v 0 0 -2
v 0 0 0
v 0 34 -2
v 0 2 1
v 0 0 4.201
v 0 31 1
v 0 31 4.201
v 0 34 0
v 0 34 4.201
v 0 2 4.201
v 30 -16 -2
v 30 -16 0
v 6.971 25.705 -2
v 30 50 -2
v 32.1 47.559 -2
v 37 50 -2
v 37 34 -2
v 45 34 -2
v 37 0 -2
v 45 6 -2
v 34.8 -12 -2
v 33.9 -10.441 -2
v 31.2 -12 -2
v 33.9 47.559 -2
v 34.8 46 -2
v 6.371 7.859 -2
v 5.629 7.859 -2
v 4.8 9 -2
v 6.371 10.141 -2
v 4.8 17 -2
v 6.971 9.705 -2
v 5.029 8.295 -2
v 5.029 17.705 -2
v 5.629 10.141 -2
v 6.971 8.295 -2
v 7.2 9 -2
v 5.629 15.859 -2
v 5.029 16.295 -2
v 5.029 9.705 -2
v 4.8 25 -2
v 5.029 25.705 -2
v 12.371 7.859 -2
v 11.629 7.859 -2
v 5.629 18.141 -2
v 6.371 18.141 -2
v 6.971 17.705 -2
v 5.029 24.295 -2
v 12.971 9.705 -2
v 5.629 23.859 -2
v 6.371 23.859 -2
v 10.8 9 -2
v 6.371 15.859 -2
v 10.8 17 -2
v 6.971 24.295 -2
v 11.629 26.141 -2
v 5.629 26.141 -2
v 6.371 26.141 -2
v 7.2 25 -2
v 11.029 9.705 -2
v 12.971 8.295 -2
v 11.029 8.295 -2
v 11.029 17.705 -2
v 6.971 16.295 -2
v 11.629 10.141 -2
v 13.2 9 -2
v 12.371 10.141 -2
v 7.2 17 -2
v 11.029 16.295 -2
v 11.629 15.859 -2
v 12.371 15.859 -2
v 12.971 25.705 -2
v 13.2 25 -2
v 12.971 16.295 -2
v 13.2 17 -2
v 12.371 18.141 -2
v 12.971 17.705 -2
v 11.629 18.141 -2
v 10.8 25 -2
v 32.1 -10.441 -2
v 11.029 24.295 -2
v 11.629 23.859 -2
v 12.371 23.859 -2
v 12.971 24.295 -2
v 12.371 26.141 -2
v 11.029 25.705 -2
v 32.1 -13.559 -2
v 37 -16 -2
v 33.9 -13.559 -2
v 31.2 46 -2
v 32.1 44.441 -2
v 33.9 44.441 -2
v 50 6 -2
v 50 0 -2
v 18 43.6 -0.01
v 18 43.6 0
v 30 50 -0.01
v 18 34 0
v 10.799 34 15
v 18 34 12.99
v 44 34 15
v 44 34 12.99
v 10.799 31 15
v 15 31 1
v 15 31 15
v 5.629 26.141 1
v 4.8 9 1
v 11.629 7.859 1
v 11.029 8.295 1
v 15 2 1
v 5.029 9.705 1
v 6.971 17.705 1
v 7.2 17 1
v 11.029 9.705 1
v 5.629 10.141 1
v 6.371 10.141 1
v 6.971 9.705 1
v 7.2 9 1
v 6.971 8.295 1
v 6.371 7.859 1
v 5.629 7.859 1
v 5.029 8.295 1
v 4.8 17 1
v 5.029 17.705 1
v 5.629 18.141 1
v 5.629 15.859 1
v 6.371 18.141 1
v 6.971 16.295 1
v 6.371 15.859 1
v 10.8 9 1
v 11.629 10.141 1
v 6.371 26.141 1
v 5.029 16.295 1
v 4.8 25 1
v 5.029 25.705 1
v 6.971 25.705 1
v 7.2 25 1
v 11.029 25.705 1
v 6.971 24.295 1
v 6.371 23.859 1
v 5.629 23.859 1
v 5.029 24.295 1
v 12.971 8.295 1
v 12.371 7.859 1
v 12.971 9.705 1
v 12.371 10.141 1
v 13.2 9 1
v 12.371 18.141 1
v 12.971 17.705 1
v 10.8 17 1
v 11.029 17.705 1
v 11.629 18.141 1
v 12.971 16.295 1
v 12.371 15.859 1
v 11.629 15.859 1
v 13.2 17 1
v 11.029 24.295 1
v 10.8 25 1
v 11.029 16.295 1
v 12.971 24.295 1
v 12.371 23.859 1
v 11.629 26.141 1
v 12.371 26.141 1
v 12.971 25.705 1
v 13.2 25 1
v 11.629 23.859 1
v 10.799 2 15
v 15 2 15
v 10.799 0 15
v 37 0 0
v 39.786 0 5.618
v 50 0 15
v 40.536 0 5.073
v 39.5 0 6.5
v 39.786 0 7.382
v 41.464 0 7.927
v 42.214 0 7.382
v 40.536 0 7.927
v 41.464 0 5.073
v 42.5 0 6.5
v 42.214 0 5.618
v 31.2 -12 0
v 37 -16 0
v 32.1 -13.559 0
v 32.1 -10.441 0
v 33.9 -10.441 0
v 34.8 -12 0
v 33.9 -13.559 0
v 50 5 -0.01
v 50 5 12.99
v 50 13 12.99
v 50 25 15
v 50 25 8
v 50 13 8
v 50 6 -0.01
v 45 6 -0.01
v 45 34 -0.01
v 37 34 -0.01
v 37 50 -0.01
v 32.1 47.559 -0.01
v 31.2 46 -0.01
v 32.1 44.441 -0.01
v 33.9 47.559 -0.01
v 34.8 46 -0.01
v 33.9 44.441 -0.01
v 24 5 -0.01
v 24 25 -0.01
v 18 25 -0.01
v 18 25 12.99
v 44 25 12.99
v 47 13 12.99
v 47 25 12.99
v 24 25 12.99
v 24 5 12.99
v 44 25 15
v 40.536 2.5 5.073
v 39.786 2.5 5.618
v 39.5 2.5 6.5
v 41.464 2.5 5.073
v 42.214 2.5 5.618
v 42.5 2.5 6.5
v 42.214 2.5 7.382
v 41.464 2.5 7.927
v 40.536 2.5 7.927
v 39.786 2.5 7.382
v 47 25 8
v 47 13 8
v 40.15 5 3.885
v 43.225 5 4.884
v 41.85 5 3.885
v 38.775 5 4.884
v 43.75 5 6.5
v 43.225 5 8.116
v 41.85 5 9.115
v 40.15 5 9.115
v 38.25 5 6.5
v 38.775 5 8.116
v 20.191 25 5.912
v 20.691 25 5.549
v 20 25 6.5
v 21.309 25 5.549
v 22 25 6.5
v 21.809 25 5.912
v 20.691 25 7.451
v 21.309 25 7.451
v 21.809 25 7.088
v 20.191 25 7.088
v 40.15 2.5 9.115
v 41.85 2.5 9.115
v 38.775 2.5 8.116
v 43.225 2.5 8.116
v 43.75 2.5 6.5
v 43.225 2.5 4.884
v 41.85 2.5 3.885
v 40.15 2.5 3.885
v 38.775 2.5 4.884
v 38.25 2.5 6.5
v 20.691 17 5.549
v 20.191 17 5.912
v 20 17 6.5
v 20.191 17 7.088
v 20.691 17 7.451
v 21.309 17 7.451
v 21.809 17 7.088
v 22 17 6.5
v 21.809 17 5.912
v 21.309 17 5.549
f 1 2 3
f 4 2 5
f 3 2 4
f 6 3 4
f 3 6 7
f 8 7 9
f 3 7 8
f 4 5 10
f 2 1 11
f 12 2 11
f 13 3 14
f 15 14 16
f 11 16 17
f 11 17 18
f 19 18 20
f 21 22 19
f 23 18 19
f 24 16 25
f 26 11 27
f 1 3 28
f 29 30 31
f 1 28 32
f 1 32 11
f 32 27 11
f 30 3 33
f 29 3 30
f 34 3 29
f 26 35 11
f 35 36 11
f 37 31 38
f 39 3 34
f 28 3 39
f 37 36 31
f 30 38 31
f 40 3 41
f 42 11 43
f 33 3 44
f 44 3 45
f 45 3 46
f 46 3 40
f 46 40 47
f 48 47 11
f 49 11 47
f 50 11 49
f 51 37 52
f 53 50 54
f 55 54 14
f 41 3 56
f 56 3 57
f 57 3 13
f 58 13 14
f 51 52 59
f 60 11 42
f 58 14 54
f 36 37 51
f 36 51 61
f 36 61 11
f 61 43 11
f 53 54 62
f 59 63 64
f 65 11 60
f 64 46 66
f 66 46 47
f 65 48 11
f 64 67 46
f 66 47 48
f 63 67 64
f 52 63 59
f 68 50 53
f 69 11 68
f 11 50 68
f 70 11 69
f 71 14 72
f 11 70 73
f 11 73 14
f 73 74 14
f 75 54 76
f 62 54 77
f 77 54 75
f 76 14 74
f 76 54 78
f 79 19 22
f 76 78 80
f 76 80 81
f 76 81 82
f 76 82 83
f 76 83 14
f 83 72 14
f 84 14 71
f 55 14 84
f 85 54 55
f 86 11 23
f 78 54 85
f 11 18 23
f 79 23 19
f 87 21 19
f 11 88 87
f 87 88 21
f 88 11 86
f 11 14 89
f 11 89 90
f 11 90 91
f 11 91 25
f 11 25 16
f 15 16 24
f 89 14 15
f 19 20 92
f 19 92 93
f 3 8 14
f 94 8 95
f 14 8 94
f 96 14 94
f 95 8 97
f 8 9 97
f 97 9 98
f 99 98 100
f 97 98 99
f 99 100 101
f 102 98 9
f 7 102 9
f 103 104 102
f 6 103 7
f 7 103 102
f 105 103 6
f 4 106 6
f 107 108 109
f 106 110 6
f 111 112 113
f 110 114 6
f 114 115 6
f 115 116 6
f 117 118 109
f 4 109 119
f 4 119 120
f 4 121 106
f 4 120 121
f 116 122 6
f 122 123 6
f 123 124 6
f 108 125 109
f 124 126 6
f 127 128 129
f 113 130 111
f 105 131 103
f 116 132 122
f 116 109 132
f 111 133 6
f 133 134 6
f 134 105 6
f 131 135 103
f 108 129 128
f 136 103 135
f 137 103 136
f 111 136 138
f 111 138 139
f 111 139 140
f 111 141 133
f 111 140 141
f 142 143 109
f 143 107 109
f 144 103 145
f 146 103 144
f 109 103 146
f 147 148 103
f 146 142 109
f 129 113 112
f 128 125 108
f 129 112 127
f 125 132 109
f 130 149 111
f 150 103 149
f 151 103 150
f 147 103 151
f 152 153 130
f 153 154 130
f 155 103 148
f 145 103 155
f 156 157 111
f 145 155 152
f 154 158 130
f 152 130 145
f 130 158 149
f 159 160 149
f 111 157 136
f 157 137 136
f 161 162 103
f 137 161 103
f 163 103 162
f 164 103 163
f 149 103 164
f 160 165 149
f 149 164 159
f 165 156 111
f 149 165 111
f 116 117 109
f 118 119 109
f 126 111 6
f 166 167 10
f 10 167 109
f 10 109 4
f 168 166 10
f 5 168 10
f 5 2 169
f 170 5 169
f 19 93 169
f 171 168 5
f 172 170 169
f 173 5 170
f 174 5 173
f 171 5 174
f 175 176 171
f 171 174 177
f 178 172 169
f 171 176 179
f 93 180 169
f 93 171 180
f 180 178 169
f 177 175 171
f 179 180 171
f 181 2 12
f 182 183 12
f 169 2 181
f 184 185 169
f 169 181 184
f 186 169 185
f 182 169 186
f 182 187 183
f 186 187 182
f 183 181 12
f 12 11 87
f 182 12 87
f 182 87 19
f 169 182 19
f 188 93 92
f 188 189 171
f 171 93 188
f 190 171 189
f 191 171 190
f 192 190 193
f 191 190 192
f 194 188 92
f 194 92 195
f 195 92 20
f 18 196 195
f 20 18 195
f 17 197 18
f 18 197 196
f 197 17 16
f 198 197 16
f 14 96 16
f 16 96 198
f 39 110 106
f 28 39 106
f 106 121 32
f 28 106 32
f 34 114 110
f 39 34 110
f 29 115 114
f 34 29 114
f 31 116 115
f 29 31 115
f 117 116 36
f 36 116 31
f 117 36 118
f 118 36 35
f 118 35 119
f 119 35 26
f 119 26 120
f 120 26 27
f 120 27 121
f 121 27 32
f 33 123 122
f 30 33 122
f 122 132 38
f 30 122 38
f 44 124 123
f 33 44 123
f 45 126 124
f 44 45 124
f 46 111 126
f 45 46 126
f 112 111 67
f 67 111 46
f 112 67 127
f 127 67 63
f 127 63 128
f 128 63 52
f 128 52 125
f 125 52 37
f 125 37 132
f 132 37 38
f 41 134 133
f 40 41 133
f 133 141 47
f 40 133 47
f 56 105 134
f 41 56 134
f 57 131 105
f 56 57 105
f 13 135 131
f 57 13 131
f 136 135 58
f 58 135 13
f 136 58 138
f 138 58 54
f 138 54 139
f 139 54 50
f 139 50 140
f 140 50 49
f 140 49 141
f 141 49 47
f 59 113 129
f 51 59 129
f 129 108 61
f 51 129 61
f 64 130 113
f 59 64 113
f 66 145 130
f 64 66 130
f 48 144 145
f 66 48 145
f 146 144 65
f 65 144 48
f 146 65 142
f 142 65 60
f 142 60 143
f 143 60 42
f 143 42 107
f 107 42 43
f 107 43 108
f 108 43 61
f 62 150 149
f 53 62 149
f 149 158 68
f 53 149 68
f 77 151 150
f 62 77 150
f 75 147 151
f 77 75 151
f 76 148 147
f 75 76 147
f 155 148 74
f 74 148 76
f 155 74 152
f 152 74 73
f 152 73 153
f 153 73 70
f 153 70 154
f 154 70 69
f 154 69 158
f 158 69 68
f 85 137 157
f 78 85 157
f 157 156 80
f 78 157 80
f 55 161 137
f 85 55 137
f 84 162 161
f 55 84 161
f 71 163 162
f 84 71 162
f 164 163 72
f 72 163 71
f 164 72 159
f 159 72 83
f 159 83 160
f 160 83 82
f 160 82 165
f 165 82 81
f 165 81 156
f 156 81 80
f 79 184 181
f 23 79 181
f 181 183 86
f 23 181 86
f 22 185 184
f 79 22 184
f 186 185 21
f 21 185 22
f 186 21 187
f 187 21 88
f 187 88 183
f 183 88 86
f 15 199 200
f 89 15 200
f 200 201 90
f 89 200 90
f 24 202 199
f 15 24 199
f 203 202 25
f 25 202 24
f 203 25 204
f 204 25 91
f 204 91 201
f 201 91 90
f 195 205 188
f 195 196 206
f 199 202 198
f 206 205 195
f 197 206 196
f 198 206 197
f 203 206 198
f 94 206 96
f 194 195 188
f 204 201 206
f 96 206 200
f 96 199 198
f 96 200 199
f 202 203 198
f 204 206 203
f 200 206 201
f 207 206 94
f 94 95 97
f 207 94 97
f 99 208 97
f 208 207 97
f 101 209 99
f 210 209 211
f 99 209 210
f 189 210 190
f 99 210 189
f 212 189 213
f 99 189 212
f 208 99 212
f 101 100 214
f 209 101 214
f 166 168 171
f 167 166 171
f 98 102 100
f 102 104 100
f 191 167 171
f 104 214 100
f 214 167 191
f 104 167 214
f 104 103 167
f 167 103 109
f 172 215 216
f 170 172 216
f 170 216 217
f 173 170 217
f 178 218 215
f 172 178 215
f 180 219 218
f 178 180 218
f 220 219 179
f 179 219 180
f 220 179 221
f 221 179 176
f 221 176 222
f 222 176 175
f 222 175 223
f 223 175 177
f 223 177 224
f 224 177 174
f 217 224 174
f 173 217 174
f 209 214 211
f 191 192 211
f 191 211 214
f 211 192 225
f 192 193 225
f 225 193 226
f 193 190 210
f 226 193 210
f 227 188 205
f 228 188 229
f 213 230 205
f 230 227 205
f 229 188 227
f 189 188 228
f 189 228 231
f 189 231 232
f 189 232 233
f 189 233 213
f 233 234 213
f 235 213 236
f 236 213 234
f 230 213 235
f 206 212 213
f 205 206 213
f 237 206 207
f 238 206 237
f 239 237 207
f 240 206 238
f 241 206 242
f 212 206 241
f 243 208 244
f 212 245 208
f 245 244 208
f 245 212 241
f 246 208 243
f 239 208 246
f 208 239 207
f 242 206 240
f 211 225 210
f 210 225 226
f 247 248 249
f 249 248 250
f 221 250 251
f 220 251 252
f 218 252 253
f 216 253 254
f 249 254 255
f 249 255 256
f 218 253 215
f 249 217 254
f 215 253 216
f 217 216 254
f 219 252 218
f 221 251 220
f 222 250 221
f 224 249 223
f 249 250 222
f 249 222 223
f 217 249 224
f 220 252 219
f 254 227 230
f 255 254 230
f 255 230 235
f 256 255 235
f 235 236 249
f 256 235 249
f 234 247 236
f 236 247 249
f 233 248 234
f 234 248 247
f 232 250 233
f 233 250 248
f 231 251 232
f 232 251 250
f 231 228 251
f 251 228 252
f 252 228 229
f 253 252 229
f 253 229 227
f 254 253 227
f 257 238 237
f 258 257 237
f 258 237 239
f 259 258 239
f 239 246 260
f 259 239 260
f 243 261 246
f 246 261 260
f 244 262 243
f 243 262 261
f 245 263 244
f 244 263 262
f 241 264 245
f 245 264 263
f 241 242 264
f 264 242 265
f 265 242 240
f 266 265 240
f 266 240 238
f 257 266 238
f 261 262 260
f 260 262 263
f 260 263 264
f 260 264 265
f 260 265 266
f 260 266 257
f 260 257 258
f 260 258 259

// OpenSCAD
// file: raid3r/raid3r.scad
/*Pequeña biblioteca con las funciones mas comunes*/

module agujereado(X,Y,H){
	union(){
		for(j=[0:X-1])
		{
			translate([0,j*8,0])
			{
				for(i=[0:Y-1])
				{
					translate([i*6,0,-1])cylinder(r=1.2, h=H, $fn=10);
				}
			}
		}
	}
}

module dynahole(H){
	translate([-45.5/2,-10,1])union(){
		translate([3.5+6,16,0])agujereado(4,1,H);
		translate([9.5+26.5,16,0])agujereado(4,1,H);
		translate([45.5/2,10,-1])cylinder(r=11.5,h=H);	
		translate([(45.5-20)/2,6.5,-1])cube([20,36,H]);
		translate([22.5,46,0])union(){
			translate([7,0,-1])cylinder(r=1.5, h=H, $fn=10);
			translate([-7,0,-1])cylinder(r=1.5, h=H, $fn=10);
		}
	}
}

module cruz(H){
	translate([-34,-13,3])union(){
		translate([34,13,-3]) cylinder(r=4,h=H);
		translate([42,13,-3]) cylinder(r=1.5,h=H);
		translate([26,13,-3]) cylinder(r=1.5,h=H);
		translate([34,21,-3]) cylinder(r=1.5,h=H);
		translate([34,5,-3]) cylinder(r=1.5,h=H);
	}
}

module miniservo(H){
	translate([-15,-7,0])union(){
		translate([15,7,0])rotate([0,0,0])cylinder(r=8,h=H);
		translate([-1.75,7,0])union(){
			cylinder(r=1.5, h=H,$fn=20);
			translate([27.5,0,0])cylinder(r=1.5, h=H,$fn=20);
		}
	}
}

module beagleboneHoles(z){
union(){
	translate([0,0,-1])cylinder(r=2,h=z, $fn=8);
	translate([0,46.5,-1])cylinder(r=2,h=z, $fn=8);
	translate([64.5+1.5,2.5,-1])cylinder(r=2,h=z, $fn=8);
	translate([64.5+1.5,44,-1])cylinder(r=2,h=z, $fn=8);
	translate([0,0,-1])cylinder(r=3,h=3, $fn=8);
	translate([0,46.5,-1])cylinder(r=3,h=3, $fn=8);
	translate([64.5+1.5,2.5,-1])cylinder(r=3,h=3, $fn=8);
	translate([64.5+1.5,44,-1])cylinder(r=3,h=3, $fn=8);
	}
}
// main file
use <raid3r/raid3r.scad>


//servo  34+5+5=44
//Ancho externo de la cabeza 44
//Ancho interno de la cabeza 36
//Ancho de la placa de la camara 38


module agujereado(X,Y,H){
	union(){
		for(j=[0:X])
		{
			translate([0,j*8,0])
			{
				for(i=[0:Y])
				{
					translate([i*6,0,-1])cylinder(r=1.2, h=H, $fn=10);
				}
			}
		}
	}
}

offset=5;


rotate([0,0,0])
difference(){
union(){
translate([0,0,-2])cube([50,34,17]);
hull(){
translate([30,-16,-2])cube([7,66,2]);
translate([0,0,-2])cube([1,34,2]);
}

}
	//cube([50,34,15]);
	//translate([24+offset,17,-1])rotate([0,0,90]){
		//translate([16,0,0])agujereado(3,0,20);
		//mirror([1,0,0])translate([16,0,0])agujereado(3,0,20);
	//}
	translate([24,5,-0.01])cube([23,50,13]);
	translate([18,25,-0.01])cube([50,50,13]);
	translate([30,5,-0.01])cube([50,8,13]);
	translate([45,6,-5])cube([50,50,13]);
	translate([44,25,7])cube([50,50,13]);

	translate([21,17,13/2])rotate([-90,0,0])cylinder(r=1,h=20,$fn=10);
	translate([41,-1,13/2])rotate([-90,0,0])cylinder(r=1.5,h=40,$fn=10);
	translate([41,2.5,13/2])rotate([-90,0,0])cylinder(r=5.5/2,h=40,$fn=10);
	translate([-3,2.5,1])rotate([0,0,0])cube([18,29,40]);
	translate([-21,2-5,3])rotate([0,45,0])cube([14,29+10,40]);
translate([6,17-8,-2])agujereado(2,1,90);
translate([33,-16+4,-5])cylinder(r=1.8,h=10);
translate([33,50-4,-5])cylinder(r=1.8,h=10);

}
